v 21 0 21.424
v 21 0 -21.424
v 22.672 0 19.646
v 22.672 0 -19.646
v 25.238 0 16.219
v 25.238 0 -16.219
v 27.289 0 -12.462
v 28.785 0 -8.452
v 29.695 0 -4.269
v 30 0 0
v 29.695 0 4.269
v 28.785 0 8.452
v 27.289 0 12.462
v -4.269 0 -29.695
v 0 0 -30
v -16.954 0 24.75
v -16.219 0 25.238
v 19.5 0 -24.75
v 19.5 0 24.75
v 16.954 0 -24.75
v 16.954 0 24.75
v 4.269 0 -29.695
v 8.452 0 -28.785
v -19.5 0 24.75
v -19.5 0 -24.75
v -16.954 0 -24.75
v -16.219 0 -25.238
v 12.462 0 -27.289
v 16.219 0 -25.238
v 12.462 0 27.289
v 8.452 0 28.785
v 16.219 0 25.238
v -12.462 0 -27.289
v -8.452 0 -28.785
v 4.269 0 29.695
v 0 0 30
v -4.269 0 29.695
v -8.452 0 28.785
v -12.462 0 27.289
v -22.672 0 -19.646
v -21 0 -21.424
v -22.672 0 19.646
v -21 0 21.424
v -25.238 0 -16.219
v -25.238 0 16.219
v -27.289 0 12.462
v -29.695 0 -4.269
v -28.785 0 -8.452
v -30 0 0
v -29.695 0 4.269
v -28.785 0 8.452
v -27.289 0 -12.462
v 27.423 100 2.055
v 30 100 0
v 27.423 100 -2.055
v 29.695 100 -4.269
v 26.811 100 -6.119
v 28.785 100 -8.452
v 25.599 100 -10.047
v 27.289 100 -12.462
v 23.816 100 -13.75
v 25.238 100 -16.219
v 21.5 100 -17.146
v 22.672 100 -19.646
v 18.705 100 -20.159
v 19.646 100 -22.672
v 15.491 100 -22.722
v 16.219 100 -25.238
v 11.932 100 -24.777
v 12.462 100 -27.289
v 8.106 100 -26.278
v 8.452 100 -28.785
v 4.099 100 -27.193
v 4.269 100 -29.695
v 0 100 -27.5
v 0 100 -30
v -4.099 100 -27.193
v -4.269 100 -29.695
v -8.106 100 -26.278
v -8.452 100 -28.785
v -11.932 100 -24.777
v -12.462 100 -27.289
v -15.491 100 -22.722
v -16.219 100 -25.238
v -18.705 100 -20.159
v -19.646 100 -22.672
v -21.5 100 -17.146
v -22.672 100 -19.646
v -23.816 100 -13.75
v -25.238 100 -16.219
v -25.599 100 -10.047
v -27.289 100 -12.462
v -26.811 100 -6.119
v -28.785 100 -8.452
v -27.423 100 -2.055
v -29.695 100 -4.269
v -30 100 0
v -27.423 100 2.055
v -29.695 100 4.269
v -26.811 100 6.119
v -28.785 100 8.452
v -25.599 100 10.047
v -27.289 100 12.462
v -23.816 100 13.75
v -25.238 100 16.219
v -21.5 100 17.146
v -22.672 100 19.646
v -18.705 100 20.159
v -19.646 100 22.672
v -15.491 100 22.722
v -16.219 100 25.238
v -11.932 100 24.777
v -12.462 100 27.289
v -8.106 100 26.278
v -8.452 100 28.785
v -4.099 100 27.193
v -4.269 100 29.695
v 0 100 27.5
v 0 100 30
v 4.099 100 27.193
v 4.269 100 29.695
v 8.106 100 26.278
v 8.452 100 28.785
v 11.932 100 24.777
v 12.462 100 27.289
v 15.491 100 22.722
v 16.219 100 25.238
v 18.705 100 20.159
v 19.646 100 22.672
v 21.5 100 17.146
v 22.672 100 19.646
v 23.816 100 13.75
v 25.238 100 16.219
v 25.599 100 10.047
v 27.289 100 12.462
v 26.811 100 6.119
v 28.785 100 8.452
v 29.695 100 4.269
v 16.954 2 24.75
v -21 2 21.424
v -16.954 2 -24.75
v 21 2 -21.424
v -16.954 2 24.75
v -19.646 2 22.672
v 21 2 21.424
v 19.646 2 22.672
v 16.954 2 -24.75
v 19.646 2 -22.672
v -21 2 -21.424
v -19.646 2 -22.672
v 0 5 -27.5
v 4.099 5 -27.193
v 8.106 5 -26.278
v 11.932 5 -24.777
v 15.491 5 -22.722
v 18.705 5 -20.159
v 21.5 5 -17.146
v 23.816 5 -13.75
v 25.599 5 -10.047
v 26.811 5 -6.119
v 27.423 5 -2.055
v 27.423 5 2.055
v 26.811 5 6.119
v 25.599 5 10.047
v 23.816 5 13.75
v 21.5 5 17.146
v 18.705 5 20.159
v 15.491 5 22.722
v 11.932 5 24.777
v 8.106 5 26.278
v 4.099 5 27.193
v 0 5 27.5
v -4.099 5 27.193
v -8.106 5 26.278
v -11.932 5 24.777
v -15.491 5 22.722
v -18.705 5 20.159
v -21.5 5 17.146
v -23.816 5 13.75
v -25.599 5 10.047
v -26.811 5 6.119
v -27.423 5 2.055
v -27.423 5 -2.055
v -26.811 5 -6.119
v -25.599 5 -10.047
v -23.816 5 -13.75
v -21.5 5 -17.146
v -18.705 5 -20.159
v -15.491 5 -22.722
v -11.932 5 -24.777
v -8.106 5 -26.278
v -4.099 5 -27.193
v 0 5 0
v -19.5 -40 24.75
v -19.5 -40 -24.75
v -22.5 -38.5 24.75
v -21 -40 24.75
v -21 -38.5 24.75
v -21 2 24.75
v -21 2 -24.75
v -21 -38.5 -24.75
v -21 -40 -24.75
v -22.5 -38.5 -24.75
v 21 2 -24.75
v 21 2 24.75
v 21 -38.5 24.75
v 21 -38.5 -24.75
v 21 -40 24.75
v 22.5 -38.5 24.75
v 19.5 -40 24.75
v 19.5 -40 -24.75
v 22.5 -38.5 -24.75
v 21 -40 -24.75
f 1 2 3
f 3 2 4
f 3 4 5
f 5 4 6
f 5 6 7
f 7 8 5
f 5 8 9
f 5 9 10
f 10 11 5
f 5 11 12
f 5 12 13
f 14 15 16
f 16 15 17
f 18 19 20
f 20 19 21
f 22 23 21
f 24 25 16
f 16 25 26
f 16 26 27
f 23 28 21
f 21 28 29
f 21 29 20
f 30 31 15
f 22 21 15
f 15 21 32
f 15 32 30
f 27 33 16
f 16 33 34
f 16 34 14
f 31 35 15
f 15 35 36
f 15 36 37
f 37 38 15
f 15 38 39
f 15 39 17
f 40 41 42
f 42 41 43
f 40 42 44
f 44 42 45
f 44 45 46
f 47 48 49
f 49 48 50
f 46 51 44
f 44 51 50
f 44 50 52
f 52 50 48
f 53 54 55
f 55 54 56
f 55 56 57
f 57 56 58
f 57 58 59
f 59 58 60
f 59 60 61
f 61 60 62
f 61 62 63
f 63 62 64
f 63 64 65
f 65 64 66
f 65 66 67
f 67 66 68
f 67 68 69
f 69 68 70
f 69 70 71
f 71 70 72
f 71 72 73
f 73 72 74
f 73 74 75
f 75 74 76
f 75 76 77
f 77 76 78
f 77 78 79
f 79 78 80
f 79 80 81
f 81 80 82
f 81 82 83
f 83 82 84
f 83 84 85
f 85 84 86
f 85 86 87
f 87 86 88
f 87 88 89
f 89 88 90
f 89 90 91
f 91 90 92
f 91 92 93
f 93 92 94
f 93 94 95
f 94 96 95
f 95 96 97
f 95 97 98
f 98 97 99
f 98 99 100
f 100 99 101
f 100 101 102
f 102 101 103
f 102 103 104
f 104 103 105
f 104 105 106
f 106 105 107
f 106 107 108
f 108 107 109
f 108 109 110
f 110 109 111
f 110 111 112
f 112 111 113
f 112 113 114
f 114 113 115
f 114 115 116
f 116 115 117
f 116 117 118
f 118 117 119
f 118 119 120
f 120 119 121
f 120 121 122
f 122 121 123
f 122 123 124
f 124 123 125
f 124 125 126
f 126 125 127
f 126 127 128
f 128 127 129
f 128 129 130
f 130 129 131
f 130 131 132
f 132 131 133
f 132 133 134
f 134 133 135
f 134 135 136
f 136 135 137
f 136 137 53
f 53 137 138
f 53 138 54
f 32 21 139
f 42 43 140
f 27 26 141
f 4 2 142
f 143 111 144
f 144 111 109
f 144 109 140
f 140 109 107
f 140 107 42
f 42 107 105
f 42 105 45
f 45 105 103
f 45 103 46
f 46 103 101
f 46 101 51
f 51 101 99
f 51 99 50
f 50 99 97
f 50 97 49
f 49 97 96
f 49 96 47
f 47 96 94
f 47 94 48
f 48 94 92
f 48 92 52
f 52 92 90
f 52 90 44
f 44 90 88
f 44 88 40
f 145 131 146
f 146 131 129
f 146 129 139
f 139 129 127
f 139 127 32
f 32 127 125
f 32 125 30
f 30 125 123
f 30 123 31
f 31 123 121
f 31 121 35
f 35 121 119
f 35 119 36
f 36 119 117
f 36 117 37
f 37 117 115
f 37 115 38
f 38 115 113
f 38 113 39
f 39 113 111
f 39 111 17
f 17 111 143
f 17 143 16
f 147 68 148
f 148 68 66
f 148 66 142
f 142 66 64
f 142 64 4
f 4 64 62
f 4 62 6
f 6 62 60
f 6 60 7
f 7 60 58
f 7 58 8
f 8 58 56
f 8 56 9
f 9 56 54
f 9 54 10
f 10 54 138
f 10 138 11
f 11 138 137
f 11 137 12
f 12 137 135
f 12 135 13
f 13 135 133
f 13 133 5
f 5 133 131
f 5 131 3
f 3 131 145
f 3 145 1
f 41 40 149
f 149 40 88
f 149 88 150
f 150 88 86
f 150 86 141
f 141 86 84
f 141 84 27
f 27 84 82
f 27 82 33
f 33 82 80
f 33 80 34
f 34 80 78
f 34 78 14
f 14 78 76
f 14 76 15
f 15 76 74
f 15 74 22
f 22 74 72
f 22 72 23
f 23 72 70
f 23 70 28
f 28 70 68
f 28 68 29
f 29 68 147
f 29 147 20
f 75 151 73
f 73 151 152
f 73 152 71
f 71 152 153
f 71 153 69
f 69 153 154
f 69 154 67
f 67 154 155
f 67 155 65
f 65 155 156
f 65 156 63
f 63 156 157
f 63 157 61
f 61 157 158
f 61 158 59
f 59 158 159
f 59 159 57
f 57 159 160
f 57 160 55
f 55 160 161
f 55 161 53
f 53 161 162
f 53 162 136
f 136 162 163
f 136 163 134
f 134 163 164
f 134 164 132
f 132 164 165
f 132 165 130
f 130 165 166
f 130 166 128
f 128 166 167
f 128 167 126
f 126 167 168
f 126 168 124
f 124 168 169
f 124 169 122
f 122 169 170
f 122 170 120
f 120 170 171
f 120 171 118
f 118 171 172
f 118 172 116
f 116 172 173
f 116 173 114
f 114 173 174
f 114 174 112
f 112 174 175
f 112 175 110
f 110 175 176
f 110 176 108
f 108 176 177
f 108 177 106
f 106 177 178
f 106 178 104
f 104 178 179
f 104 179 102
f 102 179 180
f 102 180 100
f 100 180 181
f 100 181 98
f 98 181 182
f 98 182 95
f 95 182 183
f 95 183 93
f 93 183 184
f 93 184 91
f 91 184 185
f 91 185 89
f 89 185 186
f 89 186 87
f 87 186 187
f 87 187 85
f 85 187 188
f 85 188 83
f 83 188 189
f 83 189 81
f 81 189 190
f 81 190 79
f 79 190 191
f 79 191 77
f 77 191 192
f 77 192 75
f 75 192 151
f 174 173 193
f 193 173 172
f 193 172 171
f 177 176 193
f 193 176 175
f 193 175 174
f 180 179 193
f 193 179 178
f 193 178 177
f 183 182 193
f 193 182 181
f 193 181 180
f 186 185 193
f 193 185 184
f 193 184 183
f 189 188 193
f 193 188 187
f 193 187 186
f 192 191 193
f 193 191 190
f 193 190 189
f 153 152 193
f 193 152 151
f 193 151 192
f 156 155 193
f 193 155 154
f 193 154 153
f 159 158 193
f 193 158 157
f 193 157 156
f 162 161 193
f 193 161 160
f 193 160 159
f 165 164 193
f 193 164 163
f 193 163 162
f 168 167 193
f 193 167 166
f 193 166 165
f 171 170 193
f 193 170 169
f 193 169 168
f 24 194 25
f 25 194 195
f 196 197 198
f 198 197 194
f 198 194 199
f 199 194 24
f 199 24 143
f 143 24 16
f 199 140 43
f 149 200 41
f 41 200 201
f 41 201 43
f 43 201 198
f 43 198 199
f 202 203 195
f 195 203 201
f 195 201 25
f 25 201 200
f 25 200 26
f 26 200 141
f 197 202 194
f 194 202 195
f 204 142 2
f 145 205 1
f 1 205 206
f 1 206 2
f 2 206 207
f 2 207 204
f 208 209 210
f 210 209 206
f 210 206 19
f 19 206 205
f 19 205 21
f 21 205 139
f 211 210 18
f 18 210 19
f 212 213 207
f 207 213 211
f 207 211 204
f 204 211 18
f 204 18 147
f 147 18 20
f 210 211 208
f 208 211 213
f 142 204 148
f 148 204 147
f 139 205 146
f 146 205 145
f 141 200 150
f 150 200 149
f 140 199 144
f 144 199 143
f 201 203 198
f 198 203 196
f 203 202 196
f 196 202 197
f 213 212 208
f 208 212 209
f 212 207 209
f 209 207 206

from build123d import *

# Parameters (mm, degrees)
SKETCH1_R           = 30
SKETCH1_R_2         = 27.5
BOSS_EXTRUDE1_DEPTH = 100
SKETCH1_2_R         = 27.5
BOSS_EXTRUDE2_DEPTH = 5
SKETCH2_W           = 1.5
SKETCH2_H           = 49.5
BOSS_EXTRUDE3_DEPTH = 40
SKETCH3_W           = 42
SKETCH3_H           = 49.5
BOSS_EXTRUDE4_DEPTH = 2
BOSS_EXTRUDE5_DEPTH = 49.5


with BuildPart() as part:
    # Sketch1 → Boss-Extrude1 (new body)
    with BuildSketch(Plane(origin=(0, 0, 0), x_dir=(1, 0, 0), z_dir=(0, 1, 0))):
        with Locations(Location((0, 0, 0), (0, 0, 270))):
            Circle(SKETCH1_R)
        with Locations(Location((0, 0, 0), (0, 0, 270))):
            Circle(SKETCH1_R_2, mode=Mode.SUBTRACT)
    extrude(amount=BOSS_EXTRUDE1_DEPTH)

    # Sketch1<2> → Boss-Extrude2 (add)
    with BuildSketch(Plane(origin=(0, 0, 0), x_dir=(1, 0, 0), z_dir=(0, 1, 0))):
        with Locations(Location((0, 0, 0), (0, 0, 270))):
            Circle(SKETCH1_2_R)
    extrude(amount=BOSS_EXTRUDE2_DEPTH)

    # Sketch2 → Boss-Extrude3 (add)
    with BuildSketch(Plane.XZ):
        with Locations((-20.25, 0)):
            Rectangle(SKETCH2_W, SKETCH2_H)
        with Locations((20.25, 0)):
            Rectangle(SKETCH2_W, SKETCH2_H)
    extrude(amount=BOSS_EXTRUDE3_DEPTH)

    # Sketch3 → Boss-Extrude4 (add)
    with BuildSketch(Plane.XZ):
        Rectangle(SKETCH3_W, SKETCH3_H)
    extrude(amount=-BOSS_EXTRUDE4_DEPTH)

    # Sketch4 → Boss-Extrude5 (add)
    with BuildSketch(Plane(origin=(0, 0, -24.75), x_dir=(-1, 0, 0), z_dir=(0, 0, -1))):
        Polygon((21, -40), (22.5, -38.5), (21, -38.5), align=None)
        Polygon((-21, -40), (-22.5, -38.5), (-21, -38.5), align=None)
    extrude(amount=-BOSS_EXTRUDE5_DEPTH)


solid = part.part
